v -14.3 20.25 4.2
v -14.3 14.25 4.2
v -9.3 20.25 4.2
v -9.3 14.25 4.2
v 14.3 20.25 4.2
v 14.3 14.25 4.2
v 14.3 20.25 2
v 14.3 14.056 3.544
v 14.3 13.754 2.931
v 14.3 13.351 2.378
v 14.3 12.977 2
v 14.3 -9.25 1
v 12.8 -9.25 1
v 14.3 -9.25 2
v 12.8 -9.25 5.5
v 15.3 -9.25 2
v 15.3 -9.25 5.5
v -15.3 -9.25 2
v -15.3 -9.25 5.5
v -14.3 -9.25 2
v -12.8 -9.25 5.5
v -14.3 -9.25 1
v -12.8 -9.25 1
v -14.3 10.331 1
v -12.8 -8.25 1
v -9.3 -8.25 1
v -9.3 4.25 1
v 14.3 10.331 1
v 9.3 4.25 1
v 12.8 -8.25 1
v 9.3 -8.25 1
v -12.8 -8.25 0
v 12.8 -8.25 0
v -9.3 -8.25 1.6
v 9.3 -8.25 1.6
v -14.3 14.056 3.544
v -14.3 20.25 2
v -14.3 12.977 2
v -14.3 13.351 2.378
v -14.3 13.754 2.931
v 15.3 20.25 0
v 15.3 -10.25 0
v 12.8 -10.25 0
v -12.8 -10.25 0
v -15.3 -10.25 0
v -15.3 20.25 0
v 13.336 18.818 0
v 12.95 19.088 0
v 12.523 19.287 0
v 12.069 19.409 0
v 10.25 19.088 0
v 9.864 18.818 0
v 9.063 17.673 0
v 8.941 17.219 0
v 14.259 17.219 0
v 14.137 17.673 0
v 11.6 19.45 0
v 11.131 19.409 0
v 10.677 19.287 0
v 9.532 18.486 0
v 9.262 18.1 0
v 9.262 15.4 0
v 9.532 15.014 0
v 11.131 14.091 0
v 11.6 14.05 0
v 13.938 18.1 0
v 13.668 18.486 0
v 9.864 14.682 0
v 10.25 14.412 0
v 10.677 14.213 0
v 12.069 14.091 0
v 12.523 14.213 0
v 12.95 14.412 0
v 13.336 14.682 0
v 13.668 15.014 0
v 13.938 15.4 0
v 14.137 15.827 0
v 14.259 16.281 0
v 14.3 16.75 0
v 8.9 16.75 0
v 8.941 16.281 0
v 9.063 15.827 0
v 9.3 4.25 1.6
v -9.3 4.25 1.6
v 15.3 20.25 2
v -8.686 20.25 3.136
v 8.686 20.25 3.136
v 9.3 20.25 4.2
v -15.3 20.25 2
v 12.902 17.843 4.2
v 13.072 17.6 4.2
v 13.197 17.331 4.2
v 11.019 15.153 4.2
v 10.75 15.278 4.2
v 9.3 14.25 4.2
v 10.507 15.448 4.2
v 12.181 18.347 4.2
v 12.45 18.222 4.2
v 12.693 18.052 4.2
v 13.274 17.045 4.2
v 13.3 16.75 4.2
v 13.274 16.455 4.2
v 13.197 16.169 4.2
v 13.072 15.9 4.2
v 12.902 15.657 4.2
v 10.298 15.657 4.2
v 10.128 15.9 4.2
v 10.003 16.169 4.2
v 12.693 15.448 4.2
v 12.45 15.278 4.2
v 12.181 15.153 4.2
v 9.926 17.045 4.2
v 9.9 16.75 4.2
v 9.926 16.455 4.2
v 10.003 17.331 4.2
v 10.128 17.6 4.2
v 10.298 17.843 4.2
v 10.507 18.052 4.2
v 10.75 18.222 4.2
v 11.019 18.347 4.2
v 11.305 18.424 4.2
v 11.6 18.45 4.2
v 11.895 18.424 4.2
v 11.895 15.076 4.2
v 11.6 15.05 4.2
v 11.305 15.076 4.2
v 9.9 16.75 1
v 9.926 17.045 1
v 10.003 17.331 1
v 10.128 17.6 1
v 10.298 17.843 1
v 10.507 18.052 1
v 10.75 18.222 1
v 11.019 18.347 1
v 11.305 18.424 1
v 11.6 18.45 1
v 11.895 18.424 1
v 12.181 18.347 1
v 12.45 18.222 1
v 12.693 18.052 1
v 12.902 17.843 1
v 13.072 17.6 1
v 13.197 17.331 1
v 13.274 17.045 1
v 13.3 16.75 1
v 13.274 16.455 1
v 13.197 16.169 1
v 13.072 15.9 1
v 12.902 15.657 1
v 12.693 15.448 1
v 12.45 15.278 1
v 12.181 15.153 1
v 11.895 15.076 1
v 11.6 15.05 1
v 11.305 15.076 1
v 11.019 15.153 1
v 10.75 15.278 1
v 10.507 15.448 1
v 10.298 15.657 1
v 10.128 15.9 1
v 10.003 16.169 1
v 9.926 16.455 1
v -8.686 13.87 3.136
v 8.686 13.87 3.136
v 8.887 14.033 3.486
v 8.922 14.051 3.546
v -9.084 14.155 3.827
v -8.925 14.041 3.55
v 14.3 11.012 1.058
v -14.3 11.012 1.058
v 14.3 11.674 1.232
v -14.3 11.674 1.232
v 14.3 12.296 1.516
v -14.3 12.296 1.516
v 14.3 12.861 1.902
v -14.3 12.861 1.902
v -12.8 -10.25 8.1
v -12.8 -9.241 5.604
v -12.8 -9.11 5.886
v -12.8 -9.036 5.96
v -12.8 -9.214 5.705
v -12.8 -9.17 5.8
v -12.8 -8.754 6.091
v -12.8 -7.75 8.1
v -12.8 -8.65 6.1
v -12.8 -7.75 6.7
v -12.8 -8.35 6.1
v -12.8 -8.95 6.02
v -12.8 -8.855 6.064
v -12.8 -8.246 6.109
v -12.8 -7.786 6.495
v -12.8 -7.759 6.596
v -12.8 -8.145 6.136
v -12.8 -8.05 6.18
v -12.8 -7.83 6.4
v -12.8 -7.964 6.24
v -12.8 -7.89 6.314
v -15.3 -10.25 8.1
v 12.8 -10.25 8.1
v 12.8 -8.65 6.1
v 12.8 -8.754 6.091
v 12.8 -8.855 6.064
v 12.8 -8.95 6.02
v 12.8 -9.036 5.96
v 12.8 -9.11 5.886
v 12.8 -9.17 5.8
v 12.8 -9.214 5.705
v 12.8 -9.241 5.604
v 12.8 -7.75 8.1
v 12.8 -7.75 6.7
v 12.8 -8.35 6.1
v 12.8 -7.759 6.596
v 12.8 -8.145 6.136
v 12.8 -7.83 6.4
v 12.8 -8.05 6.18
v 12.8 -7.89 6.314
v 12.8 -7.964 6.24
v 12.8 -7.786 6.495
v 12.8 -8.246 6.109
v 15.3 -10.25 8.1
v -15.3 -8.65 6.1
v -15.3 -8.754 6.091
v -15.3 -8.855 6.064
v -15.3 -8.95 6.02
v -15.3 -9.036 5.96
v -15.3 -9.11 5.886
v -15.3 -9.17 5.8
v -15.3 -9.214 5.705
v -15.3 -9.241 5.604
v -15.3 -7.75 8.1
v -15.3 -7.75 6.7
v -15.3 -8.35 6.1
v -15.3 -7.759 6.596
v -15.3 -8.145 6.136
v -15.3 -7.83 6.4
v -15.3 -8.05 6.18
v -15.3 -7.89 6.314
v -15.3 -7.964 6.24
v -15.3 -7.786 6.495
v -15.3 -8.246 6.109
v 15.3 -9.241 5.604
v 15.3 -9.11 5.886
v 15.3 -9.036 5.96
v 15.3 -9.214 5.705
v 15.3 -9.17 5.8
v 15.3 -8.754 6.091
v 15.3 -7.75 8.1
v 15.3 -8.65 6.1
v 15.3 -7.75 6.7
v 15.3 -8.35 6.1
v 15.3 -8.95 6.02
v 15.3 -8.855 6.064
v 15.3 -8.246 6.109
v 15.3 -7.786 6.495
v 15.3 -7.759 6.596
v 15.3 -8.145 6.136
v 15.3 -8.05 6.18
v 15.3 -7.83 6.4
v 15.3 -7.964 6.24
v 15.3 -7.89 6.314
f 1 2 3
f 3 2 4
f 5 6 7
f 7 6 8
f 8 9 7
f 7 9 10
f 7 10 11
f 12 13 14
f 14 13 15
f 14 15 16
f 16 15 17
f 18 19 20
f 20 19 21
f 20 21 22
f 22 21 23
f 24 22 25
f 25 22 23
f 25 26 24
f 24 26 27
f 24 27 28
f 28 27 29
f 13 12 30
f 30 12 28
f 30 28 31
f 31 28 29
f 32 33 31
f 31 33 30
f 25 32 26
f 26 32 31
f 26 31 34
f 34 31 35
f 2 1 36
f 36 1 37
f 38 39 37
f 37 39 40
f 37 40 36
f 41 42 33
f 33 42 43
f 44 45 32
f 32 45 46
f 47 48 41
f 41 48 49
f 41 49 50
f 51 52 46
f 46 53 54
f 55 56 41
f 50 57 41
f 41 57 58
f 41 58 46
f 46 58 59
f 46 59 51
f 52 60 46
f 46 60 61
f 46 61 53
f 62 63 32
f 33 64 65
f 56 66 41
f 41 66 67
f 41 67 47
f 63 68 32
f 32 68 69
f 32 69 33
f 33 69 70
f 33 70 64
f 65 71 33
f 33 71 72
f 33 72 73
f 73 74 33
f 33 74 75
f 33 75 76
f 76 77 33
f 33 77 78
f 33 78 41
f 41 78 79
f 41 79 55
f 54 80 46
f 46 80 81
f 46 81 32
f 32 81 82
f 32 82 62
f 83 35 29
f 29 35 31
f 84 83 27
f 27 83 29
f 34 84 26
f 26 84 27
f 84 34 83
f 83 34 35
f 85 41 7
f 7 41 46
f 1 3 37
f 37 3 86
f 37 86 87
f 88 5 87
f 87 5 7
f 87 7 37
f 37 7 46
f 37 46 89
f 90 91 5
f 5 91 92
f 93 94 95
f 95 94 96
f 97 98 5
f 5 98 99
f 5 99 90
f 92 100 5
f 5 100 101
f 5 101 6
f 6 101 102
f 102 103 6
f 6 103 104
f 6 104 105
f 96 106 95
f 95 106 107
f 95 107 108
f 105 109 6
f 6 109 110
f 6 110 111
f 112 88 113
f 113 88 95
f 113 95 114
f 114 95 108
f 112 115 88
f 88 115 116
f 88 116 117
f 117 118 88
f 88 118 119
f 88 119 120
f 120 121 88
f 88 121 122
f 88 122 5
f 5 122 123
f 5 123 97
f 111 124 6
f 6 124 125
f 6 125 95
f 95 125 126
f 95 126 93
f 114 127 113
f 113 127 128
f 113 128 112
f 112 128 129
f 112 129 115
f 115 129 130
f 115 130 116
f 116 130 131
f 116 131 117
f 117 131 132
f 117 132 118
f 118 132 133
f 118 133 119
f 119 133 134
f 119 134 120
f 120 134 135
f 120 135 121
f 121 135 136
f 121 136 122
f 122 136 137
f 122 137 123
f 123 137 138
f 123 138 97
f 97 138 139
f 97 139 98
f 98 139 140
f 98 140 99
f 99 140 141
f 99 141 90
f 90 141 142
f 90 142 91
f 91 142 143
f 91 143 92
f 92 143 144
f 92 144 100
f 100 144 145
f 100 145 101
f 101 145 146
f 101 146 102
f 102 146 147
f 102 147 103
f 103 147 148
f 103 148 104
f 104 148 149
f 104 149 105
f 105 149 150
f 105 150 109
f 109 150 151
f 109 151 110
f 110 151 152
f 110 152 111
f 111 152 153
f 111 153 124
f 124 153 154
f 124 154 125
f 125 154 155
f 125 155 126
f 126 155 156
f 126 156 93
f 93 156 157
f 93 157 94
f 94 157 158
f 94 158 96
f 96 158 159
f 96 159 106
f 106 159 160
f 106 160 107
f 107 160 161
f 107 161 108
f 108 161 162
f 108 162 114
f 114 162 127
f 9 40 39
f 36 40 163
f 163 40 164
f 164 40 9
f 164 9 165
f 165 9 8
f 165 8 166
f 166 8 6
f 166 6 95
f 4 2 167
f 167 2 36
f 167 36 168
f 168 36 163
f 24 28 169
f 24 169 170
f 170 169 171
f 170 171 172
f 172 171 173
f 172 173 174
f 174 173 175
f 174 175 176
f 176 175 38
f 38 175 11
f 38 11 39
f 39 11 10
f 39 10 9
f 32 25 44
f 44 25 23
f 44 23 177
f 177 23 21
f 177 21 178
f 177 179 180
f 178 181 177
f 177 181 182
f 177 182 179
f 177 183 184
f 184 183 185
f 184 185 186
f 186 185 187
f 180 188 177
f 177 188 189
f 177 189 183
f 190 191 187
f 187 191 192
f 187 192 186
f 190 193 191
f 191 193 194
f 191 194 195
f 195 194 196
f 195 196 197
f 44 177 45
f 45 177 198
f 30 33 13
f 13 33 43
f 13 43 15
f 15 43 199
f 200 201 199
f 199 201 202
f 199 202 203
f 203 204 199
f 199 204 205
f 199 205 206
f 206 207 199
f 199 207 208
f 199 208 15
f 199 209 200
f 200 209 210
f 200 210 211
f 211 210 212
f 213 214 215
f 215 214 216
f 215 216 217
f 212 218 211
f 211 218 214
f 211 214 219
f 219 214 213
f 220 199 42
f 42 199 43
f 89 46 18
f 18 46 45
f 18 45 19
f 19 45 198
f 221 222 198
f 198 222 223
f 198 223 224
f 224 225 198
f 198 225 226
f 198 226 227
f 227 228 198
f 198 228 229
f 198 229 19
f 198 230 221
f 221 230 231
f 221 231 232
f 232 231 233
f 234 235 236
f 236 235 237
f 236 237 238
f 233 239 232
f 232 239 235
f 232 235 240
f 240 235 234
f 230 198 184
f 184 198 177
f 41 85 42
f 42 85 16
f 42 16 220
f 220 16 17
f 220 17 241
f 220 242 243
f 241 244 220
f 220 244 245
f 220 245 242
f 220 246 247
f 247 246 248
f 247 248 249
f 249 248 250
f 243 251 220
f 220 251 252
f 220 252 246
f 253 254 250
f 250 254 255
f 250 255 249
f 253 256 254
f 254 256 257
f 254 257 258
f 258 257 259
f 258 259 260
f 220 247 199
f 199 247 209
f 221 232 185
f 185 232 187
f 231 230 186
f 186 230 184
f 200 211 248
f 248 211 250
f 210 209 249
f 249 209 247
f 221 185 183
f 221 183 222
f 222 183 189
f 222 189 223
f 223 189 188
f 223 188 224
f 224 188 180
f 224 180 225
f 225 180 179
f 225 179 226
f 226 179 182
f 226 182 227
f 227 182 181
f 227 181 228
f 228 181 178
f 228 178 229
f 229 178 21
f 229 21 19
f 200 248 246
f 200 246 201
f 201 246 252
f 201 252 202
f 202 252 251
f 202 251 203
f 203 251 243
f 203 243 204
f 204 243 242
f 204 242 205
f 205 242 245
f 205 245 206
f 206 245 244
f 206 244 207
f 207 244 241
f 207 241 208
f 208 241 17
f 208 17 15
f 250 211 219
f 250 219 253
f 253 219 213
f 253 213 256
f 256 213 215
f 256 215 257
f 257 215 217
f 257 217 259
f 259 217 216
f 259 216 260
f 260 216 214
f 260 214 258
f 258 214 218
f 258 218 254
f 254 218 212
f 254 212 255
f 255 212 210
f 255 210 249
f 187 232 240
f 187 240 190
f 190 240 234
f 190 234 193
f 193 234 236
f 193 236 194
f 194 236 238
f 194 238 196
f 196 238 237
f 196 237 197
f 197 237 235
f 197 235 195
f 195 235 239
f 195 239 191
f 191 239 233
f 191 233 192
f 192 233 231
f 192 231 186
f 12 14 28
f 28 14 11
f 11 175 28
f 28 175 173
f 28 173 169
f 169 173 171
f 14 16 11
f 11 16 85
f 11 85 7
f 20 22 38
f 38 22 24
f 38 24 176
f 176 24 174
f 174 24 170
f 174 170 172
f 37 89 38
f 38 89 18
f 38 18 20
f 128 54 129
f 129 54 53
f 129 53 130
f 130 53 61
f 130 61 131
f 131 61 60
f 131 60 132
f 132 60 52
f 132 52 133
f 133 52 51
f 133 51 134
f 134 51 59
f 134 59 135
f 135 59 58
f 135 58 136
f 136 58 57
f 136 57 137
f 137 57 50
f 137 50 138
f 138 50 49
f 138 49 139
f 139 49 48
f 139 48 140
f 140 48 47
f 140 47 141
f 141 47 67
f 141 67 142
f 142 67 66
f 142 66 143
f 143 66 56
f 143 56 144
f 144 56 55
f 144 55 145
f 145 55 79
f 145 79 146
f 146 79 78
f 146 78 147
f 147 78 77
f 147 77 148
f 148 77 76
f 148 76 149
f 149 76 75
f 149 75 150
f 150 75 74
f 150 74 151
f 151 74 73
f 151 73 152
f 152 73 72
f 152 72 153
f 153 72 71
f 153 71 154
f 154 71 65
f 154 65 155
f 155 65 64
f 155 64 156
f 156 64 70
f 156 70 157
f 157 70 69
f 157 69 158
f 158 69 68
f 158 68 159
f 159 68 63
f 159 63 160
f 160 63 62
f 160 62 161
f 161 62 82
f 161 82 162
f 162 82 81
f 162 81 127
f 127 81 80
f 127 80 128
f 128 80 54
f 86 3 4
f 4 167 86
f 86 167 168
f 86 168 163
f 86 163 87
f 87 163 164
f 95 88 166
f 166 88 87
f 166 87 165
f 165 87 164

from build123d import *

# Parameters (mm, degrees)
ESQUISSE1_W             = 28.6
ESQUISSE1_H             = 16.5
BOSS_EXTRU_1_DEPTH      = 1
ESQUISSE2_W             = 18.6
ESQUISSE2_H             = 12.5
BOSS_EXTRU_2_DEPTH      = 0.6
ESQUISSE3_W             = 28.6
ESQUISSE3_H             = 12
BOSS_EXTRU_3_DEPTH      = 1
ESQUISSE4_W             = 28.6
ESQUISSE4_H             = 6
BOSS_EXTRU_4_DEPTH      = 3.2
ESQUISSE5_R             = 1.7
ENL_V_MAT_EXTRU_1_DEPTH = 26.143438508
CONG_1_R                = 4
ESQUISSE6_W             = 1.5
ESQUISSE6_H             = 1
BOSS_EXTRU_5_DEPTH      = 2
ESQUISSE7_W             = 2.5
ESQUISSE7_H             = 1
BOSS_EXTRU_6_DEPTH      = 7.1
ESQUISSE8_W             = 2.5
ESQUISSE8_H             = 2
BOSS_EXTRU_7_DEPTH      = 1.5
CONG_2_R                = 0.6
ESQUISSE9_W             = 1
ESQUISSE9_H             = 30.5
BOSS_EXTRU_8_DEPTH      = 2
CHANFREIN2_SIZE         = 1
ENL_V_MAT_EXTRU_2_DEPTH = 10


with BuildPart() as part:
    # Esquisse1 → Boss.-Extru.1 (new body)
    with BuildSketch(Plane.XY):
        Rectangle(ESQUISSE1_W, ESQUISSE1_H)
    extrude(amount=BOSS_EXTRU_1_DEPTH)

    # Esquisse2 → Boss.-Extru.2 (add)
    with BuildSketch(Plane.XY.offset(1)):
        with Locations((0, -2)):
            Rectangle(ESQUISSE2_W, ESQUISSE2_H)
    extrude(amount=BOSS_EXTRU_2_DEPTH)

    # Esquisse3 → Boss.-Extru.3 (add)
    with BuildSketch(Plane(origin=(0, 0, 0), x_dir=(-1, 0, 0), z_dir=(0, 0, -1))):
        with Locations((0, 14.25)):
            Rectangle(ESQUISSE3_W, ESQUISSE3_H)
    extrude(amount=-BOSS_EXTRU_3_DEPTH)

    # Esquisse4 → Boss.-Extru.4 (add)
    with BuildSketch(Plane.XY.offset(1)):
        with Locations((0, 17.25)):
            Rectangle(ESQUISSE4_W, ESQUISSE4_H)
    extrude(amount=BOSS_EXTRU_4_DEPTH)

    # Esquisse5 → Enlèv. mat.-Extru.1 (cut, through all)
    with BuildSketch(Plane(origin=(0, 0, 0), x_dir=(-1, 0, 0), z_dir=(0, 0, -1))):
        with Locations((-11.6, 16.75)):
            Circle(ESQUISSE5_R)
    extrude(amount=-ENL_V_MAT_EXTRU_1_DEPTH, mode=Mode.SUBTRACT)

    # Congé1
    # the kernel refuses this fillet: 4 mm, written as the material it adds along each edge
    with BuildSketch(Plane(origin=(14.3, 14.25, 1), x_dir=(0, -1, 0), z_dir=(-1, 0, 0))) as cong_1_piece_1:
        with BuildLine():
            CenterArc((3.919183588, 4), CONG_1_R, 191.536959033, 78.463040967)
            Line((0, 3.2), (-0.078383672, 3.184))
            ThreePointArc((-0.078383672, 3.184), (-0.08, 1.6), (-0.08, 0))
            Line((-0.08, 0), (0, -0.08))
            Line((0, -0.08), (3.919183588, -0.08))
            Line((3.919183588, -0.08), (3.919183588, 0))
        make_face()
    extrude(amount=28.6)

    # Esquisse6 → Boss.-Extru.5 (add)
    with BuildSketch(Plane.XZ.offset(8.25)):
        with Locations((-13.55, 0.5)):
            Rectangle(ESQUISSE6_W, ESQUISSE6_H)
        with Locations((13.55, 0.5)):
            Rectangle(ESQUISSE6_W, ESQUISSE6_H)
    extrude(amount=BOSS_EXTRU_5_DEPTH)

    # Esquisse7 → Boss.-Extru.6 (add)
    with BuildSketch(Plane.XY.offset(1)):
        with Locations((-14.05, -9.75)):
            Rectangle(ESQUISSE7_W, ESQUISSE7_H)
        with Locations((14.05, -9.75)):
            Rectangle(ESQUISSE7_W, ESQUISSE7_H)
    extrude(amount=BOSS_EXTRU_6_DEPTH)

    # Esquisse8 → Boss.-Extru.7 (add)
    with BuildSketch(Plane(origin=(0, -9.25, 0), x_dir=(1, 0, 0), z_dir=(0, 1, 0))):
        with Locations((-14.05, -7.1)):
            Rectangle(ESQUISSE8_W, ESQUISSE8_H)
        with Locations((14.05, -7.1)):
            Rectangle(ESQUISSE8_W, ESQUISSE8_H)
    extrude(amount=BOSS_EXTRU_7_DEPTH)

    # Congé2
    cong_2_edges = [part.edges().sort_by_distance(p)[0] for p in [
        (-14.05, -9.25, 6.1),
        (-14.05, -7.75, 6.1),
        (14.05, -9.25, 6.1),
        (14.05, -7.75, 6.1),
    ]]
    fillet(cong_2_edges, radius=CONG_2_R)

    # Esquisse9 → Boss.-Extru.8 (add)
    with BuildSketch(Plane(origin=(0, 0, 0), x_dir=(-1, 0, 0), z_dir=(0, 0, -1))):
        with Locations((-14.8, 5)):
            Rectangle(ESQUISSE9_W, ESQUISSE9_H)
        with Locations((14.8, 5)):
            Rectangle(ESQUISSE9_W, ESQUISSE9_H)
    extrude(amount=-BOSS_EXTRU_8_DEPTH)

    # Chanfrein2
    chanfrein2_edges = [part.edges().sort_by_distance(p)[0] for p in [
        (13.3, 16.75, 0),
    ]]
    chamfer(chanfrein2_edges, length=CHANFREIN2_SIZE)

    # Esquisse10 → Enlèv. mat.-Extru.2 (cut)
    with BuildSketch(Plane(origin=(0, 20.25, 0), x_dir=(1, 0, 0), z_dir=(0, 1, 0))):
        Polygon((9.3, -4.2), (8.685937971, -3.136413366), (-8.685937971, -3.136413366), (-9.3, -4.2), align=None)
    extrude(amount=-ENL_V_MAT_EXTRU_2_DEPTH, mode=Mode.SUBTRACT)


solid = part.part
